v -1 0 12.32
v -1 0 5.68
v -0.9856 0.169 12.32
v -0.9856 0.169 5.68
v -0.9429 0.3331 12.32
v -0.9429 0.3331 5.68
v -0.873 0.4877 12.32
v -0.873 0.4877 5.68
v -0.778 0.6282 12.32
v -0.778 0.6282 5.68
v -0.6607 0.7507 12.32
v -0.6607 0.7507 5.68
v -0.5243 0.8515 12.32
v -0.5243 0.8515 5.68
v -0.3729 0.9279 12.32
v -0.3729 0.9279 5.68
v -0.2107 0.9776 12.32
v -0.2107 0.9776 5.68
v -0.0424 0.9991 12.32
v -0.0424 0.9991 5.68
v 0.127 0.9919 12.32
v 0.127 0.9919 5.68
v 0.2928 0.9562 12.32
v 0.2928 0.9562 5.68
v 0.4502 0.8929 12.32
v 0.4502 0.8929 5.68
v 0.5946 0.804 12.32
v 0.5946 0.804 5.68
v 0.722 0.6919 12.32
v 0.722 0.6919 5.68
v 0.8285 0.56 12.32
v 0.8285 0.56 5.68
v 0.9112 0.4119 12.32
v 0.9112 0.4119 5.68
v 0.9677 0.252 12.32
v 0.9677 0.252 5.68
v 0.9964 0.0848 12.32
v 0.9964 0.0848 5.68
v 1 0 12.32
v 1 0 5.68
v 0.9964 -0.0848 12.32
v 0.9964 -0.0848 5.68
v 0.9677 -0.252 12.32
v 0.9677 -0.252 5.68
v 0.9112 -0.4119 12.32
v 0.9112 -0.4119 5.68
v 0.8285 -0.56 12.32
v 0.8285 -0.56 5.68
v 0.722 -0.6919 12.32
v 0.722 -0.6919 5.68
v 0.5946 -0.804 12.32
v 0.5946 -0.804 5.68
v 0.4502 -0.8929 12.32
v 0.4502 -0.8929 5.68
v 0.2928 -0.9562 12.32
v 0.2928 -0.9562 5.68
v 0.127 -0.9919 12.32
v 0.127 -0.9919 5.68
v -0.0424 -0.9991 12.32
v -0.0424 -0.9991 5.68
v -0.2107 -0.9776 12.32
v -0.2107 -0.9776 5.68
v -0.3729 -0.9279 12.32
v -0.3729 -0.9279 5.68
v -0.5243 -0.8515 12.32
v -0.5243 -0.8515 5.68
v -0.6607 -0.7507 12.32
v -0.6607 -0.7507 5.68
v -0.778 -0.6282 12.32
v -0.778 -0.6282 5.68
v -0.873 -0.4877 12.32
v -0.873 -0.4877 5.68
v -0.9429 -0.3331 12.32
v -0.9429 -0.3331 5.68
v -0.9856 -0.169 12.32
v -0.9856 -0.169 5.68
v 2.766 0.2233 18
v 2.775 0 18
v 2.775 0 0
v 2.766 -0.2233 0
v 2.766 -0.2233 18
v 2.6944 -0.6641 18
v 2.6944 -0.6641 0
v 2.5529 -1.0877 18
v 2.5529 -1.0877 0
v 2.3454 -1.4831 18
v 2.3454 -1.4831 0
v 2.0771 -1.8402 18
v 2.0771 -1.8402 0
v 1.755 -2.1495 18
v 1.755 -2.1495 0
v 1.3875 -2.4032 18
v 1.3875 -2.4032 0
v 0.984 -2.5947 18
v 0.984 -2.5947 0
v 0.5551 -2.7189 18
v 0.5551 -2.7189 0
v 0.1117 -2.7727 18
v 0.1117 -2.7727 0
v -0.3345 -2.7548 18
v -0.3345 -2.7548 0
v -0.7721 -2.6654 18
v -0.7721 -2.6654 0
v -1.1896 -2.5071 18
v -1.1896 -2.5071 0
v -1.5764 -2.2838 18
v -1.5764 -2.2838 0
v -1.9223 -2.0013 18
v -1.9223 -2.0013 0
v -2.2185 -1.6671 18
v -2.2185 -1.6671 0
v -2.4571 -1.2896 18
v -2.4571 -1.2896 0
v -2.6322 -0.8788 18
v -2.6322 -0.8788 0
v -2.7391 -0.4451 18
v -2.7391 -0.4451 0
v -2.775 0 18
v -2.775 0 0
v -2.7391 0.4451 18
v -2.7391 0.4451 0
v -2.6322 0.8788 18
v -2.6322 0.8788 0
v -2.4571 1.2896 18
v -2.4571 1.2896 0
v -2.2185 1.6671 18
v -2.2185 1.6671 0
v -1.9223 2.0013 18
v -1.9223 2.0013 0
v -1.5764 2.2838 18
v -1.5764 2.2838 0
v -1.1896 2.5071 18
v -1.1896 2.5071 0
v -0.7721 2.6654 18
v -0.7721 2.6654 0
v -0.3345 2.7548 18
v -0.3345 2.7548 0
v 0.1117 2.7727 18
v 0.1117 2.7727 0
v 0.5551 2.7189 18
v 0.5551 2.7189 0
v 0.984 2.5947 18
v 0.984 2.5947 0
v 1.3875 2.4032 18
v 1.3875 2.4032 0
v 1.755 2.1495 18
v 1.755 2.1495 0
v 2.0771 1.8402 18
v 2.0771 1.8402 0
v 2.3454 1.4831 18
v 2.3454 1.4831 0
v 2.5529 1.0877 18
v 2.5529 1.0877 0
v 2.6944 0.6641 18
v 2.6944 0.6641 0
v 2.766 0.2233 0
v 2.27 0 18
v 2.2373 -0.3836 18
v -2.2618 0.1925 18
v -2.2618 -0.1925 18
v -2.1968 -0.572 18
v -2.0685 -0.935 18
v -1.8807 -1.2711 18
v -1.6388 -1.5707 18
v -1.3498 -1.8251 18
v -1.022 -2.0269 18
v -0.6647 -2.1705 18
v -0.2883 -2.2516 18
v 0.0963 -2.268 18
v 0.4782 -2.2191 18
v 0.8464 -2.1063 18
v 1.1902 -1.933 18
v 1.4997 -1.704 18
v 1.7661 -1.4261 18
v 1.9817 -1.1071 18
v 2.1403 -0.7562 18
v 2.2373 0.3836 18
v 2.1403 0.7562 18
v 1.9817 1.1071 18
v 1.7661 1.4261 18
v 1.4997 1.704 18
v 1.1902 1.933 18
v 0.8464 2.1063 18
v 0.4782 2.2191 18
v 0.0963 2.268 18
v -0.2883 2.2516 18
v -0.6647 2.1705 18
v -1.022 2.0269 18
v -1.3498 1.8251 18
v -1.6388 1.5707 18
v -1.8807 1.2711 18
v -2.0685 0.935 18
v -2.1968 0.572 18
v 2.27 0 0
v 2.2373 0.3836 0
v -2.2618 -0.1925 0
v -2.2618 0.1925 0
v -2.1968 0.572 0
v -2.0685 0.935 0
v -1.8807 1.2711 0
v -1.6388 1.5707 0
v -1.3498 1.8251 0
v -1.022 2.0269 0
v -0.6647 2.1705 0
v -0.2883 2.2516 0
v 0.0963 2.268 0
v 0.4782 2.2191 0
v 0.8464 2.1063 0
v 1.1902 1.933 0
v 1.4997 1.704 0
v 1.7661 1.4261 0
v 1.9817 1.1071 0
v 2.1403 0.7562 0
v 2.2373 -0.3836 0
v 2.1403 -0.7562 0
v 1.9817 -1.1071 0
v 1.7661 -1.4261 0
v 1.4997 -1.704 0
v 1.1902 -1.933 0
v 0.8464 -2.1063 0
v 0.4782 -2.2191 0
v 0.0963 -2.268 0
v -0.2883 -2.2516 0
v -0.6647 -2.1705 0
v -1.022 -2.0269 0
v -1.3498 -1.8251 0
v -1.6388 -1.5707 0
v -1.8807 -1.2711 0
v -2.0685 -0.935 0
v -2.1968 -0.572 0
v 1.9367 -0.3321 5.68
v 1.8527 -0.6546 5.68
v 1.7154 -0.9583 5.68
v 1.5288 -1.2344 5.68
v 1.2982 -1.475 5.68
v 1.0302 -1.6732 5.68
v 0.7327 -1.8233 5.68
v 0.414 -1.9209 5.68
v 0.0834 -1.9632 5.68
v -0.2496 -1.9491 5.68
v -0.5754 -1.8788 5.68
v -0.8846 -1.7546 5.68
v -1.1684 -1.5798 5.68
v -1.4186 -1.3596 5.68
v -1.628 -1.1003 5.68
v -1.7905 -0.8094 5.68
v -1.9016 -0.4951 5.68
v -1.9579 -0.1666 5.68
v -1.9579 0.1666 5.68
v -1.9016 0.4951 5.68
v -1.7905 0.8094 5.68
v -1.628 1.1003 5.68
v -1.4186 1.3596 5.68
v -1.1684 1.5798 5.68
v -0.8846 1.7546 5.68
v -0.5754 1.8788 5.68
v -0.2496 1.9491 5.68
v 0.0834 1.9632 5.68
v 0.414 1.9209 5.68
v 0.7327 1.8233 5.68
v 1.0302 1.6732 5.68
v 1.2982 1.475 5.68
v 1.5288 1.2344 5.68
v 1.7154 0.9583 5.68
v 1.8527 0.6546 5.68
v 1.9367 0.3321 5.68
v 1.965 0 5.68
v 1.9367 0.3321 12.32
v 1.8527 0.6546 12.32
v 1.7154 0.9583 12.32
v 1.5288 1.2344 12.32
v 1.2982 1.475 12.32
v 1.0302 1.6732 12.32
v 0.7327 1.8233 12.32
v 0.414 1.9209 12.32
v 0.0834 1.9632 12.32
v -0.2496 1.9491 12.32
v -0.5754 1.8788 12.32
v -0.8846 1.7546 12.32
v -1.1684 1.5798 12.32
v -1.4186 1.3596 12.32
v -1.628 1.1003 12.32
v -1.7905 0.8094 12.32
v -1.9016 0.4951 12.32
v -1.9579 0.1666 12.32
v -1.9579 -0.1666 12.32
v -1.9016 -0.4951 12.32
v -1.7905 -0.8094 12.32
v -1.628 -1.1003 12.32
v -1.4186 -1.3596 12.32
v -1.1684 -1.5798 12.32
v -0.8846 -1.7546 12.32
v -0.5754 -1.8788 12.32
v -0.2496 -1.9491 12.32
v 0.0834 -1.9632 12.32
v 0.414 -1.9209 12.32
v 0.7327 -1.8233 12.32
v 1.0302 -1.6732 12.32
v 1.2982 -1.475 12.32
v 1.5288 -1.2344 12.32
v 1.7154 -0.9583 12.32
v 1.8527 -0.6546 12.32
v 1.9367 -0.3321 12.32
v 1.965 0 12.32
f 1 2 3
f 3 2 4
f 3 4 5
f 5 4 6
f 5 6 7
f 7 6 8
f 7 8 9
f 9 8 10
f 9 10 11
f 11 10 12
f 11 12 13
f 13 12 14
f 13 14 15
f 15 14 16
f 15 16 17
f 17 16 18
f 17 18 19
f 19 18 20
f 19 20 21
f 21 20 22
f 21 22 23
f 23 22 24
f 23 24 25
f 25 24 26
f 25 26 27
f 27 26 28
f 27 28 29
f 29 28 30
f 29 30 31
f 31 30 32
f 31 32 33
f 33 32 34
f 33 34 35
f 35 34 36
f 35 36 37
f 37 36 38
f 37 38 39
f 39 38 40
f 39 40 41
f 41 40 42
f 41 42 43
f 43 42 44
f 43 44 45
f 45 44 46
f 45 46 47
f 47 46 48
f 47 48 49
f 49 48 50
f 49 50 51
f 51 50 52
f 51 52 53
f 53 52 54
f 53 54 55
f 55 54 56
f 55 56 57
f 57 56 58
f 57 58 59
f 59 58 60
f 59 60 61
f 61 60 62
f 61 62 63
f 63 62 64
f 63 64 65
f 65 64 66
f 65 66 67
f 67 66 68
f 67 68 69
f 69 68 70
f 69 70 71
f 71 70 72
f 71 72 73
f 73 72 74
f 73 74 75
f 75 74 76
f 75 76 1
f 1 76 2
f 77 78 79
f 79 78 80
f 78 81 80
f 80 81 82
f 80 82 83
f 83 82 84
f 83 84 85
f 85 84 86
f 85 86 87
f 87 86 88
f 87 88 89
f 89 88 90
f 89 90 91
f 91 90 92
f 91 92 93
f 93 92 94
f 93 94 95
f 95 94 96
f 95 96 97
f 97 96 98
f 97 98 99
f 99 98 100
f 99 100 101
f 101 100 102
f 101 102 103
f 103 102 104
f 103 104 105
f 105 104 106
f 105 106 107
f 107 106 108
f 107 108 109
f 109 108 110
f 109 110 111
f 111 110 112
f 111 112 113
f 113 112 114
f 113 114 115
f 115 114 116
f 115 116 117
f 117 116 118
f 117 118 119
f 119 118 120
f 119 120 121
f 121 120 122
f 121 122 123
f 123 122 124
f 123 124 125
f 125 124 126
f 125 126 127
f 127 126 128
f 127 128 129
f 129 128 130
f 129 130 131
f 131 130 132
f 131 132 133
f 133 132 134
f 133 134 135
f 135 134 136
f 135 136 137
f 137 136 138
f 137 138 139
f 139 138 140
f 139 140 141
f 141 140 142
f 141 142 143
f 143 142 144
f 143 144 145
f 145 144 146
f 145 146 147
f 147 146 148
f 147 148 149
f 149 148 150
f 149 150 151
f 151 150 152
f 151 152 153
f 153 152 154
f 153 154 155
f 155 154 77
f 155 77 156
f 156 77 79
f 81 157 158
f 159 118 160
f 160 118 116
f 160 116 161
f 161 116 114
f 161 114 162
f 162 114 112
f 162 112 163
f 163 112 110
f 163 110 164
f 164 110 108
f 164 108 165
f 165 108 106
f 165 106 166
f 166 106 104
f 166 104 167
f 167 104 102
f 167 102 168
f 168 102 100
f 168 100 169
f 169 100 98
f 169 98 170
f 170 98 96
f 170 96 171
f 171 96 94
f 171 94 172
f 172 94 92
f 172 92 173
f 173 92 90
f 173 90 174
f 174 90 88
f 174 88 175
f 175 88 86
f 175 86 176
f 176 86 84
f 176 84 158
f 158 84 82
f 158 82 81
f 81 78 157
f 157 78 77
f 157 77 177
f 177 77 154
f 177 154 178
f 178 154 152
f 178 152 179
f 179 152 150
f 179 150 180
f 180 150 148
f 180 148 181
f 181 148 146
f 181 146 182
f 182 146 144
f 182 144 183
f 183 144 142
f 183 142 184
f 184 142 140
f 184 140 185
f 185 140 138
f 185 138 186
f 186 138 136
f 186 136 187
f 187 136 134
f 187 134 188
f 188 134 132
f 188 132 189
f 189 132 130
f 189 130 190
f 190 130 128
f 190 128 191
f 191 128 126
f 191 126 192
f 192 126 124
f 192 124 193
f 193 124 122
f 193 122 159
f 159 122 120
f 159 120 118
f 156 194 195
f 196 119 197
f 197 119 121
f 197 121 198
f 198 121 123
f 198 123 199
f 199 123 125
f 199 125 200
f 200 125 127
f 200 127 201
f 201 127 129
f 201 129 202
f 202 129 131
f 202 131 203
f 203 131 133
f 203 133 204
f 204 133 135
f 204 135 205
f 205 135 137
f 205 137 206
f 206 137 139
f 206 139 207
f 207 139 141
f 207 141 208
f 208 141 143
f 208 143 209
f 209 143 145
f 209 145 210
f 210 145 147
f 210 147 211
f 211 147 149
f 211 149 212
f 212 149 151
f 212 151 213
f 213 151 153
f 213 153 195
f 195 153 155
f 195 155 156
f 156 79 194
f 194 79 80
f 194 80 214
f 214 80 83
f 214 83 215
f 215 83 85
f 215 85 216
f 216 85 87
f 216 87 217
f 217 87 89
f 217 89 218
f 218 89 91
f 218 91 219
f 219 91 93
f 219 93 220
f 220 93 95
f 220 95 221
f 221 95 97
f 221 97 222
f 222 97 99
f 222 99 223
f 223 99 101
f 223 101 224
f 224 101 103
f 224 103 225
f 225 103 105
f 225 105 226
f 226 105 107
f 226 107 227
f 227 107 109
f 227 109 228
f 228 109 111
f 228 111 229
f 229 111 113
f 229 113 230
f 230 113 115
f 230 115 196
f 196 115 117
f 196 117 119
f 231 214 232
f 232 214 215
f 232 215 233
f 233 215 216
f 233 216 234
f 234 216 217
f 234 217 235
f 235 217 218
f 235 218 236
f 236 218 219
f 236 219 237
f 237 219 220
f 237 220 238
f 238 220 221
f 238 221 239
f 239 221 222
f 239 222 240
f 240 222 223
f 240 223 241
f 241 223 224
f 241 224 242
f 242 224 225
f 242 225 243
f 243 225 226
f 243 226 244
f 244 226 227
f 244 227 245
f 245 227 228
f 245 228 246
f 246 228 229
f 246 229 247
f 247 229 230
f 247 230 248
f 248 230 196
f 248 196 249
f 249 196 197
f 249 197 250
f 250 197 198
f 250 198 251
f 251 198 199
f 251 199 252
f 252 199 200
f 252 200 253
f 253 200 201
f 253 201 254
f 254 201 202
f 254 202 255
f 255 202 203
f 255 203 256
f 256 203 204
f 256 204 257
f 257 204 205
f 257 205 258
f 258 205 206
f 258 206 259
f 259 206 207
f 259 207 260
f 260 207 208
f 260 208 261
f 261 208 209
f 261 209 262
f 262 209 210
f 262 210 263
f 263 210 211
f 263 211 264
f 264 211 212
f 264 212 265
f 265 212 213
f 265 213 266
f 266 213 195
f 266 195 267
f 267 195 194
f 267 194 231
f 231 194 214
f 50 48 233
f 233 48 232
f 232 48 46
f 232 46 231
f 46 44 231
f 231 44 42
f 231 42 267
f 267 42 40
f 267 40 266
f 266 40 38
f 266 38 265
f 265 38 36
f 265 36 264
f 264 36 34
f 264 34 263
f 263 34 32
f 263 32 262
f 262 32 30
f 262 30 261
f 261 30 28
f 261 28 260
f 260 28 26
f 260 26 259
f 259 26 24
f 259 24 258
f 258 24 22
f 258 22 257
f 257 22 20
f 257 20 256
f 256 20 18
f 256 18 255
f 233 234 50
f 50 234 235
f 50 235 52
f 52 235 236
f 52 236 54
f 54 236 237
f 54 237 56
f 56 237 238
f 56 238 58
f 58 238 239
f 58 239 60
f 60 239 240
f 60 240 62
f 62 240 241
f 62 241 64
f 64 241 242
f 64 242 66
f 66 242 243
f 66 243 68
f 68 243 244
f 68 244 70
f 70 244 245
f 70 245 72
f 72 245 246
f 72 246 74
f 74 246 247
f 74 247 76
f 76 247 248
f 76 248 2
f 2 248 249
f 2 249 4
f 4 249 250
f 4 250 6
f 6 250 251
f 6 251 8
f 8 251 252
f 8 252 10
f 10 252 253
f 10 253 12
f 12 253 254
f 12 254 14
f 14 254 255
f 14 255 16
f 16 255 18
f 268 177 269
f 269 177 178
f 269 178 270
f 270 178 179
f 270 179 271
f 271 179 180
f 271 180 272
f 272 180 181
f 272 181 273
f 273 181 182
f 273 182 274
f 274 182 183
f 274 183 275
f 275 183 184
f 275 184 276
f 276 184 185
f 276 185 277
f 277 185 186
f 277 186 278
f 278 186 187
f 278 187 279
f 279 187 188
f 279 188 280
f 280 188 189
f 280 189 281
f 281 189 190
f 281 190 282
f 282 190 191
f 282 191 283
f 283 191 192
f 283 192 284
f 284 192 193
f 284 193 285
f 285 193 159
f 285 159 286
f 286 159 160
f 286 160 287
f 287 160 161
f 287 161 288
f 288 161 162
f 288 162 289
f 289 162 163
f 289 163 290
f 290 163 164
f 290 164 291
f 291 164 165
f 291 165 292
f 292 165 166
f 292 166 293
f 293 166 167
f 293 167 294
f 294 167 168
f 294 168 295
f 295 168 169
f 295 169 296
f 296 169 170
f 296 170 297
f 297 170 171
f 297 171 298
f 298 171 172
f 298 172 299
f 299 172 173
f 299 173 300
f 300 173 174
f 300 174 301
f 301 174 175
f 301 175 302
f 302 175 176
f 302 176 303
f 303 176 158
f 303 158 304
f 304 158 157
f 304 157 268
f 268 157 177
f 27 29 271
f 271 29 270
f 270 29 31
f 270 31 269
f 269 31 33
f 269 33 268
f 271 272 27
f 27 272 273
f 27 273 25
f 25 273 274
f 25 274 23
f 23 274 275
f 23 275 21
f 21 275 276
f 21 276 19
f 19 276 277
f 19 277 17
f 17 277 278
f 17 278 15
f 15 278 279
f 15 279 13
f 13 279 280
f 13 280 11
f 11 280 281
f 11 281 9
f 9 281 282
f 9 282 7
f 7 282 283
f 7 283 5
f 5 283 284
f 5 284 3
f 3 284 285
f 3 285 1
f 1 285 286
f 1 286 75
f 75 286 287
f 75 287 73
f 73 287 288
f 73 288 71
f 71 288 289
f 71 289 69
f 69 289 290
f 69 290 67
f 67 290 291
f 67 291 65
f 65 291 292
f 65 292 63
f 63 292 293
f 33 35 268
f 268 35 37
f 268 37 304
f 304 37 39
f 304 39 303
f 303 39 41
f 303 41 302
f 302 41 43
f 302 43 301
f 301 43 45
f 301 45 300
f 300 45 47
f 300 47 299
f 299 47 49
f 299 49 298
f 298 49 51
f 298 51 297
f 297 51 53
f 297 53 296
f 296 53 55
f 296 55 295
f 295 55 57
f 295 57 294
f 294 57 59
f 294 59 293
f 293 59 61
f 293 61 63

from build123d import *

# Parameters (mm, degrees)
SKETCH1_R           = 2.775
BOSS_EXTRUDE1_DEPTH = 18
SKETCH2_R           = 2.27
CUT_EXTRUDE1_DEPTH  = 5.68
CUT_EXTRUDE1_TAPER  = 3.074
SKETCH7_R           = 1
CUT_EXTRUDE2_DEPTH  = 19
SKETCH9_R           = 2.27
CUT_EXTRUDE3_DEPTH  = 5.68
CUT_EXTRUDE3_TAPER  = 3.074


with BuildPart() as part:
    # Sketch1 → Boss-Extrude1 (new body)
    with BuildSketch(Plane.XY):
        Circle(SKETCH1_R)
    extrude(amount=BOSS_EXTRUDE1_DEPTH)

    # Sketch2 → Cut-Extrude1 (cut)
    with BuildSketch(Plane.XY):
        Circle(SKETCH2_R)
    extrude(amount=CUT_EXTRUDE1_DEPTH, taper=CUT_EXTRUDE1_TAPER, mode=Mode.SUBTRACT)

    # Sketch7 → Cut-Extrude2 (cut, through all)
    with BuildSketch(Plane.XY):
        Circle(SKETCH7_R)
    extrude(amount=CUT_EXTRUDE2_DEPTH, mode=Mode.SUBTRACT)

    # Sketch9 → Cut-Extrude3 (cut)
    with BuildSketch(Plane.XY.offset(18)):
        Circle(SKETCH9_R)
    extrude(amount=-CUT_EXTRUDE3_DEPTH, taper=CUT_EXTRUDE3_TAPER, mode=Mode.SUBTRACT)


solid = part.part
